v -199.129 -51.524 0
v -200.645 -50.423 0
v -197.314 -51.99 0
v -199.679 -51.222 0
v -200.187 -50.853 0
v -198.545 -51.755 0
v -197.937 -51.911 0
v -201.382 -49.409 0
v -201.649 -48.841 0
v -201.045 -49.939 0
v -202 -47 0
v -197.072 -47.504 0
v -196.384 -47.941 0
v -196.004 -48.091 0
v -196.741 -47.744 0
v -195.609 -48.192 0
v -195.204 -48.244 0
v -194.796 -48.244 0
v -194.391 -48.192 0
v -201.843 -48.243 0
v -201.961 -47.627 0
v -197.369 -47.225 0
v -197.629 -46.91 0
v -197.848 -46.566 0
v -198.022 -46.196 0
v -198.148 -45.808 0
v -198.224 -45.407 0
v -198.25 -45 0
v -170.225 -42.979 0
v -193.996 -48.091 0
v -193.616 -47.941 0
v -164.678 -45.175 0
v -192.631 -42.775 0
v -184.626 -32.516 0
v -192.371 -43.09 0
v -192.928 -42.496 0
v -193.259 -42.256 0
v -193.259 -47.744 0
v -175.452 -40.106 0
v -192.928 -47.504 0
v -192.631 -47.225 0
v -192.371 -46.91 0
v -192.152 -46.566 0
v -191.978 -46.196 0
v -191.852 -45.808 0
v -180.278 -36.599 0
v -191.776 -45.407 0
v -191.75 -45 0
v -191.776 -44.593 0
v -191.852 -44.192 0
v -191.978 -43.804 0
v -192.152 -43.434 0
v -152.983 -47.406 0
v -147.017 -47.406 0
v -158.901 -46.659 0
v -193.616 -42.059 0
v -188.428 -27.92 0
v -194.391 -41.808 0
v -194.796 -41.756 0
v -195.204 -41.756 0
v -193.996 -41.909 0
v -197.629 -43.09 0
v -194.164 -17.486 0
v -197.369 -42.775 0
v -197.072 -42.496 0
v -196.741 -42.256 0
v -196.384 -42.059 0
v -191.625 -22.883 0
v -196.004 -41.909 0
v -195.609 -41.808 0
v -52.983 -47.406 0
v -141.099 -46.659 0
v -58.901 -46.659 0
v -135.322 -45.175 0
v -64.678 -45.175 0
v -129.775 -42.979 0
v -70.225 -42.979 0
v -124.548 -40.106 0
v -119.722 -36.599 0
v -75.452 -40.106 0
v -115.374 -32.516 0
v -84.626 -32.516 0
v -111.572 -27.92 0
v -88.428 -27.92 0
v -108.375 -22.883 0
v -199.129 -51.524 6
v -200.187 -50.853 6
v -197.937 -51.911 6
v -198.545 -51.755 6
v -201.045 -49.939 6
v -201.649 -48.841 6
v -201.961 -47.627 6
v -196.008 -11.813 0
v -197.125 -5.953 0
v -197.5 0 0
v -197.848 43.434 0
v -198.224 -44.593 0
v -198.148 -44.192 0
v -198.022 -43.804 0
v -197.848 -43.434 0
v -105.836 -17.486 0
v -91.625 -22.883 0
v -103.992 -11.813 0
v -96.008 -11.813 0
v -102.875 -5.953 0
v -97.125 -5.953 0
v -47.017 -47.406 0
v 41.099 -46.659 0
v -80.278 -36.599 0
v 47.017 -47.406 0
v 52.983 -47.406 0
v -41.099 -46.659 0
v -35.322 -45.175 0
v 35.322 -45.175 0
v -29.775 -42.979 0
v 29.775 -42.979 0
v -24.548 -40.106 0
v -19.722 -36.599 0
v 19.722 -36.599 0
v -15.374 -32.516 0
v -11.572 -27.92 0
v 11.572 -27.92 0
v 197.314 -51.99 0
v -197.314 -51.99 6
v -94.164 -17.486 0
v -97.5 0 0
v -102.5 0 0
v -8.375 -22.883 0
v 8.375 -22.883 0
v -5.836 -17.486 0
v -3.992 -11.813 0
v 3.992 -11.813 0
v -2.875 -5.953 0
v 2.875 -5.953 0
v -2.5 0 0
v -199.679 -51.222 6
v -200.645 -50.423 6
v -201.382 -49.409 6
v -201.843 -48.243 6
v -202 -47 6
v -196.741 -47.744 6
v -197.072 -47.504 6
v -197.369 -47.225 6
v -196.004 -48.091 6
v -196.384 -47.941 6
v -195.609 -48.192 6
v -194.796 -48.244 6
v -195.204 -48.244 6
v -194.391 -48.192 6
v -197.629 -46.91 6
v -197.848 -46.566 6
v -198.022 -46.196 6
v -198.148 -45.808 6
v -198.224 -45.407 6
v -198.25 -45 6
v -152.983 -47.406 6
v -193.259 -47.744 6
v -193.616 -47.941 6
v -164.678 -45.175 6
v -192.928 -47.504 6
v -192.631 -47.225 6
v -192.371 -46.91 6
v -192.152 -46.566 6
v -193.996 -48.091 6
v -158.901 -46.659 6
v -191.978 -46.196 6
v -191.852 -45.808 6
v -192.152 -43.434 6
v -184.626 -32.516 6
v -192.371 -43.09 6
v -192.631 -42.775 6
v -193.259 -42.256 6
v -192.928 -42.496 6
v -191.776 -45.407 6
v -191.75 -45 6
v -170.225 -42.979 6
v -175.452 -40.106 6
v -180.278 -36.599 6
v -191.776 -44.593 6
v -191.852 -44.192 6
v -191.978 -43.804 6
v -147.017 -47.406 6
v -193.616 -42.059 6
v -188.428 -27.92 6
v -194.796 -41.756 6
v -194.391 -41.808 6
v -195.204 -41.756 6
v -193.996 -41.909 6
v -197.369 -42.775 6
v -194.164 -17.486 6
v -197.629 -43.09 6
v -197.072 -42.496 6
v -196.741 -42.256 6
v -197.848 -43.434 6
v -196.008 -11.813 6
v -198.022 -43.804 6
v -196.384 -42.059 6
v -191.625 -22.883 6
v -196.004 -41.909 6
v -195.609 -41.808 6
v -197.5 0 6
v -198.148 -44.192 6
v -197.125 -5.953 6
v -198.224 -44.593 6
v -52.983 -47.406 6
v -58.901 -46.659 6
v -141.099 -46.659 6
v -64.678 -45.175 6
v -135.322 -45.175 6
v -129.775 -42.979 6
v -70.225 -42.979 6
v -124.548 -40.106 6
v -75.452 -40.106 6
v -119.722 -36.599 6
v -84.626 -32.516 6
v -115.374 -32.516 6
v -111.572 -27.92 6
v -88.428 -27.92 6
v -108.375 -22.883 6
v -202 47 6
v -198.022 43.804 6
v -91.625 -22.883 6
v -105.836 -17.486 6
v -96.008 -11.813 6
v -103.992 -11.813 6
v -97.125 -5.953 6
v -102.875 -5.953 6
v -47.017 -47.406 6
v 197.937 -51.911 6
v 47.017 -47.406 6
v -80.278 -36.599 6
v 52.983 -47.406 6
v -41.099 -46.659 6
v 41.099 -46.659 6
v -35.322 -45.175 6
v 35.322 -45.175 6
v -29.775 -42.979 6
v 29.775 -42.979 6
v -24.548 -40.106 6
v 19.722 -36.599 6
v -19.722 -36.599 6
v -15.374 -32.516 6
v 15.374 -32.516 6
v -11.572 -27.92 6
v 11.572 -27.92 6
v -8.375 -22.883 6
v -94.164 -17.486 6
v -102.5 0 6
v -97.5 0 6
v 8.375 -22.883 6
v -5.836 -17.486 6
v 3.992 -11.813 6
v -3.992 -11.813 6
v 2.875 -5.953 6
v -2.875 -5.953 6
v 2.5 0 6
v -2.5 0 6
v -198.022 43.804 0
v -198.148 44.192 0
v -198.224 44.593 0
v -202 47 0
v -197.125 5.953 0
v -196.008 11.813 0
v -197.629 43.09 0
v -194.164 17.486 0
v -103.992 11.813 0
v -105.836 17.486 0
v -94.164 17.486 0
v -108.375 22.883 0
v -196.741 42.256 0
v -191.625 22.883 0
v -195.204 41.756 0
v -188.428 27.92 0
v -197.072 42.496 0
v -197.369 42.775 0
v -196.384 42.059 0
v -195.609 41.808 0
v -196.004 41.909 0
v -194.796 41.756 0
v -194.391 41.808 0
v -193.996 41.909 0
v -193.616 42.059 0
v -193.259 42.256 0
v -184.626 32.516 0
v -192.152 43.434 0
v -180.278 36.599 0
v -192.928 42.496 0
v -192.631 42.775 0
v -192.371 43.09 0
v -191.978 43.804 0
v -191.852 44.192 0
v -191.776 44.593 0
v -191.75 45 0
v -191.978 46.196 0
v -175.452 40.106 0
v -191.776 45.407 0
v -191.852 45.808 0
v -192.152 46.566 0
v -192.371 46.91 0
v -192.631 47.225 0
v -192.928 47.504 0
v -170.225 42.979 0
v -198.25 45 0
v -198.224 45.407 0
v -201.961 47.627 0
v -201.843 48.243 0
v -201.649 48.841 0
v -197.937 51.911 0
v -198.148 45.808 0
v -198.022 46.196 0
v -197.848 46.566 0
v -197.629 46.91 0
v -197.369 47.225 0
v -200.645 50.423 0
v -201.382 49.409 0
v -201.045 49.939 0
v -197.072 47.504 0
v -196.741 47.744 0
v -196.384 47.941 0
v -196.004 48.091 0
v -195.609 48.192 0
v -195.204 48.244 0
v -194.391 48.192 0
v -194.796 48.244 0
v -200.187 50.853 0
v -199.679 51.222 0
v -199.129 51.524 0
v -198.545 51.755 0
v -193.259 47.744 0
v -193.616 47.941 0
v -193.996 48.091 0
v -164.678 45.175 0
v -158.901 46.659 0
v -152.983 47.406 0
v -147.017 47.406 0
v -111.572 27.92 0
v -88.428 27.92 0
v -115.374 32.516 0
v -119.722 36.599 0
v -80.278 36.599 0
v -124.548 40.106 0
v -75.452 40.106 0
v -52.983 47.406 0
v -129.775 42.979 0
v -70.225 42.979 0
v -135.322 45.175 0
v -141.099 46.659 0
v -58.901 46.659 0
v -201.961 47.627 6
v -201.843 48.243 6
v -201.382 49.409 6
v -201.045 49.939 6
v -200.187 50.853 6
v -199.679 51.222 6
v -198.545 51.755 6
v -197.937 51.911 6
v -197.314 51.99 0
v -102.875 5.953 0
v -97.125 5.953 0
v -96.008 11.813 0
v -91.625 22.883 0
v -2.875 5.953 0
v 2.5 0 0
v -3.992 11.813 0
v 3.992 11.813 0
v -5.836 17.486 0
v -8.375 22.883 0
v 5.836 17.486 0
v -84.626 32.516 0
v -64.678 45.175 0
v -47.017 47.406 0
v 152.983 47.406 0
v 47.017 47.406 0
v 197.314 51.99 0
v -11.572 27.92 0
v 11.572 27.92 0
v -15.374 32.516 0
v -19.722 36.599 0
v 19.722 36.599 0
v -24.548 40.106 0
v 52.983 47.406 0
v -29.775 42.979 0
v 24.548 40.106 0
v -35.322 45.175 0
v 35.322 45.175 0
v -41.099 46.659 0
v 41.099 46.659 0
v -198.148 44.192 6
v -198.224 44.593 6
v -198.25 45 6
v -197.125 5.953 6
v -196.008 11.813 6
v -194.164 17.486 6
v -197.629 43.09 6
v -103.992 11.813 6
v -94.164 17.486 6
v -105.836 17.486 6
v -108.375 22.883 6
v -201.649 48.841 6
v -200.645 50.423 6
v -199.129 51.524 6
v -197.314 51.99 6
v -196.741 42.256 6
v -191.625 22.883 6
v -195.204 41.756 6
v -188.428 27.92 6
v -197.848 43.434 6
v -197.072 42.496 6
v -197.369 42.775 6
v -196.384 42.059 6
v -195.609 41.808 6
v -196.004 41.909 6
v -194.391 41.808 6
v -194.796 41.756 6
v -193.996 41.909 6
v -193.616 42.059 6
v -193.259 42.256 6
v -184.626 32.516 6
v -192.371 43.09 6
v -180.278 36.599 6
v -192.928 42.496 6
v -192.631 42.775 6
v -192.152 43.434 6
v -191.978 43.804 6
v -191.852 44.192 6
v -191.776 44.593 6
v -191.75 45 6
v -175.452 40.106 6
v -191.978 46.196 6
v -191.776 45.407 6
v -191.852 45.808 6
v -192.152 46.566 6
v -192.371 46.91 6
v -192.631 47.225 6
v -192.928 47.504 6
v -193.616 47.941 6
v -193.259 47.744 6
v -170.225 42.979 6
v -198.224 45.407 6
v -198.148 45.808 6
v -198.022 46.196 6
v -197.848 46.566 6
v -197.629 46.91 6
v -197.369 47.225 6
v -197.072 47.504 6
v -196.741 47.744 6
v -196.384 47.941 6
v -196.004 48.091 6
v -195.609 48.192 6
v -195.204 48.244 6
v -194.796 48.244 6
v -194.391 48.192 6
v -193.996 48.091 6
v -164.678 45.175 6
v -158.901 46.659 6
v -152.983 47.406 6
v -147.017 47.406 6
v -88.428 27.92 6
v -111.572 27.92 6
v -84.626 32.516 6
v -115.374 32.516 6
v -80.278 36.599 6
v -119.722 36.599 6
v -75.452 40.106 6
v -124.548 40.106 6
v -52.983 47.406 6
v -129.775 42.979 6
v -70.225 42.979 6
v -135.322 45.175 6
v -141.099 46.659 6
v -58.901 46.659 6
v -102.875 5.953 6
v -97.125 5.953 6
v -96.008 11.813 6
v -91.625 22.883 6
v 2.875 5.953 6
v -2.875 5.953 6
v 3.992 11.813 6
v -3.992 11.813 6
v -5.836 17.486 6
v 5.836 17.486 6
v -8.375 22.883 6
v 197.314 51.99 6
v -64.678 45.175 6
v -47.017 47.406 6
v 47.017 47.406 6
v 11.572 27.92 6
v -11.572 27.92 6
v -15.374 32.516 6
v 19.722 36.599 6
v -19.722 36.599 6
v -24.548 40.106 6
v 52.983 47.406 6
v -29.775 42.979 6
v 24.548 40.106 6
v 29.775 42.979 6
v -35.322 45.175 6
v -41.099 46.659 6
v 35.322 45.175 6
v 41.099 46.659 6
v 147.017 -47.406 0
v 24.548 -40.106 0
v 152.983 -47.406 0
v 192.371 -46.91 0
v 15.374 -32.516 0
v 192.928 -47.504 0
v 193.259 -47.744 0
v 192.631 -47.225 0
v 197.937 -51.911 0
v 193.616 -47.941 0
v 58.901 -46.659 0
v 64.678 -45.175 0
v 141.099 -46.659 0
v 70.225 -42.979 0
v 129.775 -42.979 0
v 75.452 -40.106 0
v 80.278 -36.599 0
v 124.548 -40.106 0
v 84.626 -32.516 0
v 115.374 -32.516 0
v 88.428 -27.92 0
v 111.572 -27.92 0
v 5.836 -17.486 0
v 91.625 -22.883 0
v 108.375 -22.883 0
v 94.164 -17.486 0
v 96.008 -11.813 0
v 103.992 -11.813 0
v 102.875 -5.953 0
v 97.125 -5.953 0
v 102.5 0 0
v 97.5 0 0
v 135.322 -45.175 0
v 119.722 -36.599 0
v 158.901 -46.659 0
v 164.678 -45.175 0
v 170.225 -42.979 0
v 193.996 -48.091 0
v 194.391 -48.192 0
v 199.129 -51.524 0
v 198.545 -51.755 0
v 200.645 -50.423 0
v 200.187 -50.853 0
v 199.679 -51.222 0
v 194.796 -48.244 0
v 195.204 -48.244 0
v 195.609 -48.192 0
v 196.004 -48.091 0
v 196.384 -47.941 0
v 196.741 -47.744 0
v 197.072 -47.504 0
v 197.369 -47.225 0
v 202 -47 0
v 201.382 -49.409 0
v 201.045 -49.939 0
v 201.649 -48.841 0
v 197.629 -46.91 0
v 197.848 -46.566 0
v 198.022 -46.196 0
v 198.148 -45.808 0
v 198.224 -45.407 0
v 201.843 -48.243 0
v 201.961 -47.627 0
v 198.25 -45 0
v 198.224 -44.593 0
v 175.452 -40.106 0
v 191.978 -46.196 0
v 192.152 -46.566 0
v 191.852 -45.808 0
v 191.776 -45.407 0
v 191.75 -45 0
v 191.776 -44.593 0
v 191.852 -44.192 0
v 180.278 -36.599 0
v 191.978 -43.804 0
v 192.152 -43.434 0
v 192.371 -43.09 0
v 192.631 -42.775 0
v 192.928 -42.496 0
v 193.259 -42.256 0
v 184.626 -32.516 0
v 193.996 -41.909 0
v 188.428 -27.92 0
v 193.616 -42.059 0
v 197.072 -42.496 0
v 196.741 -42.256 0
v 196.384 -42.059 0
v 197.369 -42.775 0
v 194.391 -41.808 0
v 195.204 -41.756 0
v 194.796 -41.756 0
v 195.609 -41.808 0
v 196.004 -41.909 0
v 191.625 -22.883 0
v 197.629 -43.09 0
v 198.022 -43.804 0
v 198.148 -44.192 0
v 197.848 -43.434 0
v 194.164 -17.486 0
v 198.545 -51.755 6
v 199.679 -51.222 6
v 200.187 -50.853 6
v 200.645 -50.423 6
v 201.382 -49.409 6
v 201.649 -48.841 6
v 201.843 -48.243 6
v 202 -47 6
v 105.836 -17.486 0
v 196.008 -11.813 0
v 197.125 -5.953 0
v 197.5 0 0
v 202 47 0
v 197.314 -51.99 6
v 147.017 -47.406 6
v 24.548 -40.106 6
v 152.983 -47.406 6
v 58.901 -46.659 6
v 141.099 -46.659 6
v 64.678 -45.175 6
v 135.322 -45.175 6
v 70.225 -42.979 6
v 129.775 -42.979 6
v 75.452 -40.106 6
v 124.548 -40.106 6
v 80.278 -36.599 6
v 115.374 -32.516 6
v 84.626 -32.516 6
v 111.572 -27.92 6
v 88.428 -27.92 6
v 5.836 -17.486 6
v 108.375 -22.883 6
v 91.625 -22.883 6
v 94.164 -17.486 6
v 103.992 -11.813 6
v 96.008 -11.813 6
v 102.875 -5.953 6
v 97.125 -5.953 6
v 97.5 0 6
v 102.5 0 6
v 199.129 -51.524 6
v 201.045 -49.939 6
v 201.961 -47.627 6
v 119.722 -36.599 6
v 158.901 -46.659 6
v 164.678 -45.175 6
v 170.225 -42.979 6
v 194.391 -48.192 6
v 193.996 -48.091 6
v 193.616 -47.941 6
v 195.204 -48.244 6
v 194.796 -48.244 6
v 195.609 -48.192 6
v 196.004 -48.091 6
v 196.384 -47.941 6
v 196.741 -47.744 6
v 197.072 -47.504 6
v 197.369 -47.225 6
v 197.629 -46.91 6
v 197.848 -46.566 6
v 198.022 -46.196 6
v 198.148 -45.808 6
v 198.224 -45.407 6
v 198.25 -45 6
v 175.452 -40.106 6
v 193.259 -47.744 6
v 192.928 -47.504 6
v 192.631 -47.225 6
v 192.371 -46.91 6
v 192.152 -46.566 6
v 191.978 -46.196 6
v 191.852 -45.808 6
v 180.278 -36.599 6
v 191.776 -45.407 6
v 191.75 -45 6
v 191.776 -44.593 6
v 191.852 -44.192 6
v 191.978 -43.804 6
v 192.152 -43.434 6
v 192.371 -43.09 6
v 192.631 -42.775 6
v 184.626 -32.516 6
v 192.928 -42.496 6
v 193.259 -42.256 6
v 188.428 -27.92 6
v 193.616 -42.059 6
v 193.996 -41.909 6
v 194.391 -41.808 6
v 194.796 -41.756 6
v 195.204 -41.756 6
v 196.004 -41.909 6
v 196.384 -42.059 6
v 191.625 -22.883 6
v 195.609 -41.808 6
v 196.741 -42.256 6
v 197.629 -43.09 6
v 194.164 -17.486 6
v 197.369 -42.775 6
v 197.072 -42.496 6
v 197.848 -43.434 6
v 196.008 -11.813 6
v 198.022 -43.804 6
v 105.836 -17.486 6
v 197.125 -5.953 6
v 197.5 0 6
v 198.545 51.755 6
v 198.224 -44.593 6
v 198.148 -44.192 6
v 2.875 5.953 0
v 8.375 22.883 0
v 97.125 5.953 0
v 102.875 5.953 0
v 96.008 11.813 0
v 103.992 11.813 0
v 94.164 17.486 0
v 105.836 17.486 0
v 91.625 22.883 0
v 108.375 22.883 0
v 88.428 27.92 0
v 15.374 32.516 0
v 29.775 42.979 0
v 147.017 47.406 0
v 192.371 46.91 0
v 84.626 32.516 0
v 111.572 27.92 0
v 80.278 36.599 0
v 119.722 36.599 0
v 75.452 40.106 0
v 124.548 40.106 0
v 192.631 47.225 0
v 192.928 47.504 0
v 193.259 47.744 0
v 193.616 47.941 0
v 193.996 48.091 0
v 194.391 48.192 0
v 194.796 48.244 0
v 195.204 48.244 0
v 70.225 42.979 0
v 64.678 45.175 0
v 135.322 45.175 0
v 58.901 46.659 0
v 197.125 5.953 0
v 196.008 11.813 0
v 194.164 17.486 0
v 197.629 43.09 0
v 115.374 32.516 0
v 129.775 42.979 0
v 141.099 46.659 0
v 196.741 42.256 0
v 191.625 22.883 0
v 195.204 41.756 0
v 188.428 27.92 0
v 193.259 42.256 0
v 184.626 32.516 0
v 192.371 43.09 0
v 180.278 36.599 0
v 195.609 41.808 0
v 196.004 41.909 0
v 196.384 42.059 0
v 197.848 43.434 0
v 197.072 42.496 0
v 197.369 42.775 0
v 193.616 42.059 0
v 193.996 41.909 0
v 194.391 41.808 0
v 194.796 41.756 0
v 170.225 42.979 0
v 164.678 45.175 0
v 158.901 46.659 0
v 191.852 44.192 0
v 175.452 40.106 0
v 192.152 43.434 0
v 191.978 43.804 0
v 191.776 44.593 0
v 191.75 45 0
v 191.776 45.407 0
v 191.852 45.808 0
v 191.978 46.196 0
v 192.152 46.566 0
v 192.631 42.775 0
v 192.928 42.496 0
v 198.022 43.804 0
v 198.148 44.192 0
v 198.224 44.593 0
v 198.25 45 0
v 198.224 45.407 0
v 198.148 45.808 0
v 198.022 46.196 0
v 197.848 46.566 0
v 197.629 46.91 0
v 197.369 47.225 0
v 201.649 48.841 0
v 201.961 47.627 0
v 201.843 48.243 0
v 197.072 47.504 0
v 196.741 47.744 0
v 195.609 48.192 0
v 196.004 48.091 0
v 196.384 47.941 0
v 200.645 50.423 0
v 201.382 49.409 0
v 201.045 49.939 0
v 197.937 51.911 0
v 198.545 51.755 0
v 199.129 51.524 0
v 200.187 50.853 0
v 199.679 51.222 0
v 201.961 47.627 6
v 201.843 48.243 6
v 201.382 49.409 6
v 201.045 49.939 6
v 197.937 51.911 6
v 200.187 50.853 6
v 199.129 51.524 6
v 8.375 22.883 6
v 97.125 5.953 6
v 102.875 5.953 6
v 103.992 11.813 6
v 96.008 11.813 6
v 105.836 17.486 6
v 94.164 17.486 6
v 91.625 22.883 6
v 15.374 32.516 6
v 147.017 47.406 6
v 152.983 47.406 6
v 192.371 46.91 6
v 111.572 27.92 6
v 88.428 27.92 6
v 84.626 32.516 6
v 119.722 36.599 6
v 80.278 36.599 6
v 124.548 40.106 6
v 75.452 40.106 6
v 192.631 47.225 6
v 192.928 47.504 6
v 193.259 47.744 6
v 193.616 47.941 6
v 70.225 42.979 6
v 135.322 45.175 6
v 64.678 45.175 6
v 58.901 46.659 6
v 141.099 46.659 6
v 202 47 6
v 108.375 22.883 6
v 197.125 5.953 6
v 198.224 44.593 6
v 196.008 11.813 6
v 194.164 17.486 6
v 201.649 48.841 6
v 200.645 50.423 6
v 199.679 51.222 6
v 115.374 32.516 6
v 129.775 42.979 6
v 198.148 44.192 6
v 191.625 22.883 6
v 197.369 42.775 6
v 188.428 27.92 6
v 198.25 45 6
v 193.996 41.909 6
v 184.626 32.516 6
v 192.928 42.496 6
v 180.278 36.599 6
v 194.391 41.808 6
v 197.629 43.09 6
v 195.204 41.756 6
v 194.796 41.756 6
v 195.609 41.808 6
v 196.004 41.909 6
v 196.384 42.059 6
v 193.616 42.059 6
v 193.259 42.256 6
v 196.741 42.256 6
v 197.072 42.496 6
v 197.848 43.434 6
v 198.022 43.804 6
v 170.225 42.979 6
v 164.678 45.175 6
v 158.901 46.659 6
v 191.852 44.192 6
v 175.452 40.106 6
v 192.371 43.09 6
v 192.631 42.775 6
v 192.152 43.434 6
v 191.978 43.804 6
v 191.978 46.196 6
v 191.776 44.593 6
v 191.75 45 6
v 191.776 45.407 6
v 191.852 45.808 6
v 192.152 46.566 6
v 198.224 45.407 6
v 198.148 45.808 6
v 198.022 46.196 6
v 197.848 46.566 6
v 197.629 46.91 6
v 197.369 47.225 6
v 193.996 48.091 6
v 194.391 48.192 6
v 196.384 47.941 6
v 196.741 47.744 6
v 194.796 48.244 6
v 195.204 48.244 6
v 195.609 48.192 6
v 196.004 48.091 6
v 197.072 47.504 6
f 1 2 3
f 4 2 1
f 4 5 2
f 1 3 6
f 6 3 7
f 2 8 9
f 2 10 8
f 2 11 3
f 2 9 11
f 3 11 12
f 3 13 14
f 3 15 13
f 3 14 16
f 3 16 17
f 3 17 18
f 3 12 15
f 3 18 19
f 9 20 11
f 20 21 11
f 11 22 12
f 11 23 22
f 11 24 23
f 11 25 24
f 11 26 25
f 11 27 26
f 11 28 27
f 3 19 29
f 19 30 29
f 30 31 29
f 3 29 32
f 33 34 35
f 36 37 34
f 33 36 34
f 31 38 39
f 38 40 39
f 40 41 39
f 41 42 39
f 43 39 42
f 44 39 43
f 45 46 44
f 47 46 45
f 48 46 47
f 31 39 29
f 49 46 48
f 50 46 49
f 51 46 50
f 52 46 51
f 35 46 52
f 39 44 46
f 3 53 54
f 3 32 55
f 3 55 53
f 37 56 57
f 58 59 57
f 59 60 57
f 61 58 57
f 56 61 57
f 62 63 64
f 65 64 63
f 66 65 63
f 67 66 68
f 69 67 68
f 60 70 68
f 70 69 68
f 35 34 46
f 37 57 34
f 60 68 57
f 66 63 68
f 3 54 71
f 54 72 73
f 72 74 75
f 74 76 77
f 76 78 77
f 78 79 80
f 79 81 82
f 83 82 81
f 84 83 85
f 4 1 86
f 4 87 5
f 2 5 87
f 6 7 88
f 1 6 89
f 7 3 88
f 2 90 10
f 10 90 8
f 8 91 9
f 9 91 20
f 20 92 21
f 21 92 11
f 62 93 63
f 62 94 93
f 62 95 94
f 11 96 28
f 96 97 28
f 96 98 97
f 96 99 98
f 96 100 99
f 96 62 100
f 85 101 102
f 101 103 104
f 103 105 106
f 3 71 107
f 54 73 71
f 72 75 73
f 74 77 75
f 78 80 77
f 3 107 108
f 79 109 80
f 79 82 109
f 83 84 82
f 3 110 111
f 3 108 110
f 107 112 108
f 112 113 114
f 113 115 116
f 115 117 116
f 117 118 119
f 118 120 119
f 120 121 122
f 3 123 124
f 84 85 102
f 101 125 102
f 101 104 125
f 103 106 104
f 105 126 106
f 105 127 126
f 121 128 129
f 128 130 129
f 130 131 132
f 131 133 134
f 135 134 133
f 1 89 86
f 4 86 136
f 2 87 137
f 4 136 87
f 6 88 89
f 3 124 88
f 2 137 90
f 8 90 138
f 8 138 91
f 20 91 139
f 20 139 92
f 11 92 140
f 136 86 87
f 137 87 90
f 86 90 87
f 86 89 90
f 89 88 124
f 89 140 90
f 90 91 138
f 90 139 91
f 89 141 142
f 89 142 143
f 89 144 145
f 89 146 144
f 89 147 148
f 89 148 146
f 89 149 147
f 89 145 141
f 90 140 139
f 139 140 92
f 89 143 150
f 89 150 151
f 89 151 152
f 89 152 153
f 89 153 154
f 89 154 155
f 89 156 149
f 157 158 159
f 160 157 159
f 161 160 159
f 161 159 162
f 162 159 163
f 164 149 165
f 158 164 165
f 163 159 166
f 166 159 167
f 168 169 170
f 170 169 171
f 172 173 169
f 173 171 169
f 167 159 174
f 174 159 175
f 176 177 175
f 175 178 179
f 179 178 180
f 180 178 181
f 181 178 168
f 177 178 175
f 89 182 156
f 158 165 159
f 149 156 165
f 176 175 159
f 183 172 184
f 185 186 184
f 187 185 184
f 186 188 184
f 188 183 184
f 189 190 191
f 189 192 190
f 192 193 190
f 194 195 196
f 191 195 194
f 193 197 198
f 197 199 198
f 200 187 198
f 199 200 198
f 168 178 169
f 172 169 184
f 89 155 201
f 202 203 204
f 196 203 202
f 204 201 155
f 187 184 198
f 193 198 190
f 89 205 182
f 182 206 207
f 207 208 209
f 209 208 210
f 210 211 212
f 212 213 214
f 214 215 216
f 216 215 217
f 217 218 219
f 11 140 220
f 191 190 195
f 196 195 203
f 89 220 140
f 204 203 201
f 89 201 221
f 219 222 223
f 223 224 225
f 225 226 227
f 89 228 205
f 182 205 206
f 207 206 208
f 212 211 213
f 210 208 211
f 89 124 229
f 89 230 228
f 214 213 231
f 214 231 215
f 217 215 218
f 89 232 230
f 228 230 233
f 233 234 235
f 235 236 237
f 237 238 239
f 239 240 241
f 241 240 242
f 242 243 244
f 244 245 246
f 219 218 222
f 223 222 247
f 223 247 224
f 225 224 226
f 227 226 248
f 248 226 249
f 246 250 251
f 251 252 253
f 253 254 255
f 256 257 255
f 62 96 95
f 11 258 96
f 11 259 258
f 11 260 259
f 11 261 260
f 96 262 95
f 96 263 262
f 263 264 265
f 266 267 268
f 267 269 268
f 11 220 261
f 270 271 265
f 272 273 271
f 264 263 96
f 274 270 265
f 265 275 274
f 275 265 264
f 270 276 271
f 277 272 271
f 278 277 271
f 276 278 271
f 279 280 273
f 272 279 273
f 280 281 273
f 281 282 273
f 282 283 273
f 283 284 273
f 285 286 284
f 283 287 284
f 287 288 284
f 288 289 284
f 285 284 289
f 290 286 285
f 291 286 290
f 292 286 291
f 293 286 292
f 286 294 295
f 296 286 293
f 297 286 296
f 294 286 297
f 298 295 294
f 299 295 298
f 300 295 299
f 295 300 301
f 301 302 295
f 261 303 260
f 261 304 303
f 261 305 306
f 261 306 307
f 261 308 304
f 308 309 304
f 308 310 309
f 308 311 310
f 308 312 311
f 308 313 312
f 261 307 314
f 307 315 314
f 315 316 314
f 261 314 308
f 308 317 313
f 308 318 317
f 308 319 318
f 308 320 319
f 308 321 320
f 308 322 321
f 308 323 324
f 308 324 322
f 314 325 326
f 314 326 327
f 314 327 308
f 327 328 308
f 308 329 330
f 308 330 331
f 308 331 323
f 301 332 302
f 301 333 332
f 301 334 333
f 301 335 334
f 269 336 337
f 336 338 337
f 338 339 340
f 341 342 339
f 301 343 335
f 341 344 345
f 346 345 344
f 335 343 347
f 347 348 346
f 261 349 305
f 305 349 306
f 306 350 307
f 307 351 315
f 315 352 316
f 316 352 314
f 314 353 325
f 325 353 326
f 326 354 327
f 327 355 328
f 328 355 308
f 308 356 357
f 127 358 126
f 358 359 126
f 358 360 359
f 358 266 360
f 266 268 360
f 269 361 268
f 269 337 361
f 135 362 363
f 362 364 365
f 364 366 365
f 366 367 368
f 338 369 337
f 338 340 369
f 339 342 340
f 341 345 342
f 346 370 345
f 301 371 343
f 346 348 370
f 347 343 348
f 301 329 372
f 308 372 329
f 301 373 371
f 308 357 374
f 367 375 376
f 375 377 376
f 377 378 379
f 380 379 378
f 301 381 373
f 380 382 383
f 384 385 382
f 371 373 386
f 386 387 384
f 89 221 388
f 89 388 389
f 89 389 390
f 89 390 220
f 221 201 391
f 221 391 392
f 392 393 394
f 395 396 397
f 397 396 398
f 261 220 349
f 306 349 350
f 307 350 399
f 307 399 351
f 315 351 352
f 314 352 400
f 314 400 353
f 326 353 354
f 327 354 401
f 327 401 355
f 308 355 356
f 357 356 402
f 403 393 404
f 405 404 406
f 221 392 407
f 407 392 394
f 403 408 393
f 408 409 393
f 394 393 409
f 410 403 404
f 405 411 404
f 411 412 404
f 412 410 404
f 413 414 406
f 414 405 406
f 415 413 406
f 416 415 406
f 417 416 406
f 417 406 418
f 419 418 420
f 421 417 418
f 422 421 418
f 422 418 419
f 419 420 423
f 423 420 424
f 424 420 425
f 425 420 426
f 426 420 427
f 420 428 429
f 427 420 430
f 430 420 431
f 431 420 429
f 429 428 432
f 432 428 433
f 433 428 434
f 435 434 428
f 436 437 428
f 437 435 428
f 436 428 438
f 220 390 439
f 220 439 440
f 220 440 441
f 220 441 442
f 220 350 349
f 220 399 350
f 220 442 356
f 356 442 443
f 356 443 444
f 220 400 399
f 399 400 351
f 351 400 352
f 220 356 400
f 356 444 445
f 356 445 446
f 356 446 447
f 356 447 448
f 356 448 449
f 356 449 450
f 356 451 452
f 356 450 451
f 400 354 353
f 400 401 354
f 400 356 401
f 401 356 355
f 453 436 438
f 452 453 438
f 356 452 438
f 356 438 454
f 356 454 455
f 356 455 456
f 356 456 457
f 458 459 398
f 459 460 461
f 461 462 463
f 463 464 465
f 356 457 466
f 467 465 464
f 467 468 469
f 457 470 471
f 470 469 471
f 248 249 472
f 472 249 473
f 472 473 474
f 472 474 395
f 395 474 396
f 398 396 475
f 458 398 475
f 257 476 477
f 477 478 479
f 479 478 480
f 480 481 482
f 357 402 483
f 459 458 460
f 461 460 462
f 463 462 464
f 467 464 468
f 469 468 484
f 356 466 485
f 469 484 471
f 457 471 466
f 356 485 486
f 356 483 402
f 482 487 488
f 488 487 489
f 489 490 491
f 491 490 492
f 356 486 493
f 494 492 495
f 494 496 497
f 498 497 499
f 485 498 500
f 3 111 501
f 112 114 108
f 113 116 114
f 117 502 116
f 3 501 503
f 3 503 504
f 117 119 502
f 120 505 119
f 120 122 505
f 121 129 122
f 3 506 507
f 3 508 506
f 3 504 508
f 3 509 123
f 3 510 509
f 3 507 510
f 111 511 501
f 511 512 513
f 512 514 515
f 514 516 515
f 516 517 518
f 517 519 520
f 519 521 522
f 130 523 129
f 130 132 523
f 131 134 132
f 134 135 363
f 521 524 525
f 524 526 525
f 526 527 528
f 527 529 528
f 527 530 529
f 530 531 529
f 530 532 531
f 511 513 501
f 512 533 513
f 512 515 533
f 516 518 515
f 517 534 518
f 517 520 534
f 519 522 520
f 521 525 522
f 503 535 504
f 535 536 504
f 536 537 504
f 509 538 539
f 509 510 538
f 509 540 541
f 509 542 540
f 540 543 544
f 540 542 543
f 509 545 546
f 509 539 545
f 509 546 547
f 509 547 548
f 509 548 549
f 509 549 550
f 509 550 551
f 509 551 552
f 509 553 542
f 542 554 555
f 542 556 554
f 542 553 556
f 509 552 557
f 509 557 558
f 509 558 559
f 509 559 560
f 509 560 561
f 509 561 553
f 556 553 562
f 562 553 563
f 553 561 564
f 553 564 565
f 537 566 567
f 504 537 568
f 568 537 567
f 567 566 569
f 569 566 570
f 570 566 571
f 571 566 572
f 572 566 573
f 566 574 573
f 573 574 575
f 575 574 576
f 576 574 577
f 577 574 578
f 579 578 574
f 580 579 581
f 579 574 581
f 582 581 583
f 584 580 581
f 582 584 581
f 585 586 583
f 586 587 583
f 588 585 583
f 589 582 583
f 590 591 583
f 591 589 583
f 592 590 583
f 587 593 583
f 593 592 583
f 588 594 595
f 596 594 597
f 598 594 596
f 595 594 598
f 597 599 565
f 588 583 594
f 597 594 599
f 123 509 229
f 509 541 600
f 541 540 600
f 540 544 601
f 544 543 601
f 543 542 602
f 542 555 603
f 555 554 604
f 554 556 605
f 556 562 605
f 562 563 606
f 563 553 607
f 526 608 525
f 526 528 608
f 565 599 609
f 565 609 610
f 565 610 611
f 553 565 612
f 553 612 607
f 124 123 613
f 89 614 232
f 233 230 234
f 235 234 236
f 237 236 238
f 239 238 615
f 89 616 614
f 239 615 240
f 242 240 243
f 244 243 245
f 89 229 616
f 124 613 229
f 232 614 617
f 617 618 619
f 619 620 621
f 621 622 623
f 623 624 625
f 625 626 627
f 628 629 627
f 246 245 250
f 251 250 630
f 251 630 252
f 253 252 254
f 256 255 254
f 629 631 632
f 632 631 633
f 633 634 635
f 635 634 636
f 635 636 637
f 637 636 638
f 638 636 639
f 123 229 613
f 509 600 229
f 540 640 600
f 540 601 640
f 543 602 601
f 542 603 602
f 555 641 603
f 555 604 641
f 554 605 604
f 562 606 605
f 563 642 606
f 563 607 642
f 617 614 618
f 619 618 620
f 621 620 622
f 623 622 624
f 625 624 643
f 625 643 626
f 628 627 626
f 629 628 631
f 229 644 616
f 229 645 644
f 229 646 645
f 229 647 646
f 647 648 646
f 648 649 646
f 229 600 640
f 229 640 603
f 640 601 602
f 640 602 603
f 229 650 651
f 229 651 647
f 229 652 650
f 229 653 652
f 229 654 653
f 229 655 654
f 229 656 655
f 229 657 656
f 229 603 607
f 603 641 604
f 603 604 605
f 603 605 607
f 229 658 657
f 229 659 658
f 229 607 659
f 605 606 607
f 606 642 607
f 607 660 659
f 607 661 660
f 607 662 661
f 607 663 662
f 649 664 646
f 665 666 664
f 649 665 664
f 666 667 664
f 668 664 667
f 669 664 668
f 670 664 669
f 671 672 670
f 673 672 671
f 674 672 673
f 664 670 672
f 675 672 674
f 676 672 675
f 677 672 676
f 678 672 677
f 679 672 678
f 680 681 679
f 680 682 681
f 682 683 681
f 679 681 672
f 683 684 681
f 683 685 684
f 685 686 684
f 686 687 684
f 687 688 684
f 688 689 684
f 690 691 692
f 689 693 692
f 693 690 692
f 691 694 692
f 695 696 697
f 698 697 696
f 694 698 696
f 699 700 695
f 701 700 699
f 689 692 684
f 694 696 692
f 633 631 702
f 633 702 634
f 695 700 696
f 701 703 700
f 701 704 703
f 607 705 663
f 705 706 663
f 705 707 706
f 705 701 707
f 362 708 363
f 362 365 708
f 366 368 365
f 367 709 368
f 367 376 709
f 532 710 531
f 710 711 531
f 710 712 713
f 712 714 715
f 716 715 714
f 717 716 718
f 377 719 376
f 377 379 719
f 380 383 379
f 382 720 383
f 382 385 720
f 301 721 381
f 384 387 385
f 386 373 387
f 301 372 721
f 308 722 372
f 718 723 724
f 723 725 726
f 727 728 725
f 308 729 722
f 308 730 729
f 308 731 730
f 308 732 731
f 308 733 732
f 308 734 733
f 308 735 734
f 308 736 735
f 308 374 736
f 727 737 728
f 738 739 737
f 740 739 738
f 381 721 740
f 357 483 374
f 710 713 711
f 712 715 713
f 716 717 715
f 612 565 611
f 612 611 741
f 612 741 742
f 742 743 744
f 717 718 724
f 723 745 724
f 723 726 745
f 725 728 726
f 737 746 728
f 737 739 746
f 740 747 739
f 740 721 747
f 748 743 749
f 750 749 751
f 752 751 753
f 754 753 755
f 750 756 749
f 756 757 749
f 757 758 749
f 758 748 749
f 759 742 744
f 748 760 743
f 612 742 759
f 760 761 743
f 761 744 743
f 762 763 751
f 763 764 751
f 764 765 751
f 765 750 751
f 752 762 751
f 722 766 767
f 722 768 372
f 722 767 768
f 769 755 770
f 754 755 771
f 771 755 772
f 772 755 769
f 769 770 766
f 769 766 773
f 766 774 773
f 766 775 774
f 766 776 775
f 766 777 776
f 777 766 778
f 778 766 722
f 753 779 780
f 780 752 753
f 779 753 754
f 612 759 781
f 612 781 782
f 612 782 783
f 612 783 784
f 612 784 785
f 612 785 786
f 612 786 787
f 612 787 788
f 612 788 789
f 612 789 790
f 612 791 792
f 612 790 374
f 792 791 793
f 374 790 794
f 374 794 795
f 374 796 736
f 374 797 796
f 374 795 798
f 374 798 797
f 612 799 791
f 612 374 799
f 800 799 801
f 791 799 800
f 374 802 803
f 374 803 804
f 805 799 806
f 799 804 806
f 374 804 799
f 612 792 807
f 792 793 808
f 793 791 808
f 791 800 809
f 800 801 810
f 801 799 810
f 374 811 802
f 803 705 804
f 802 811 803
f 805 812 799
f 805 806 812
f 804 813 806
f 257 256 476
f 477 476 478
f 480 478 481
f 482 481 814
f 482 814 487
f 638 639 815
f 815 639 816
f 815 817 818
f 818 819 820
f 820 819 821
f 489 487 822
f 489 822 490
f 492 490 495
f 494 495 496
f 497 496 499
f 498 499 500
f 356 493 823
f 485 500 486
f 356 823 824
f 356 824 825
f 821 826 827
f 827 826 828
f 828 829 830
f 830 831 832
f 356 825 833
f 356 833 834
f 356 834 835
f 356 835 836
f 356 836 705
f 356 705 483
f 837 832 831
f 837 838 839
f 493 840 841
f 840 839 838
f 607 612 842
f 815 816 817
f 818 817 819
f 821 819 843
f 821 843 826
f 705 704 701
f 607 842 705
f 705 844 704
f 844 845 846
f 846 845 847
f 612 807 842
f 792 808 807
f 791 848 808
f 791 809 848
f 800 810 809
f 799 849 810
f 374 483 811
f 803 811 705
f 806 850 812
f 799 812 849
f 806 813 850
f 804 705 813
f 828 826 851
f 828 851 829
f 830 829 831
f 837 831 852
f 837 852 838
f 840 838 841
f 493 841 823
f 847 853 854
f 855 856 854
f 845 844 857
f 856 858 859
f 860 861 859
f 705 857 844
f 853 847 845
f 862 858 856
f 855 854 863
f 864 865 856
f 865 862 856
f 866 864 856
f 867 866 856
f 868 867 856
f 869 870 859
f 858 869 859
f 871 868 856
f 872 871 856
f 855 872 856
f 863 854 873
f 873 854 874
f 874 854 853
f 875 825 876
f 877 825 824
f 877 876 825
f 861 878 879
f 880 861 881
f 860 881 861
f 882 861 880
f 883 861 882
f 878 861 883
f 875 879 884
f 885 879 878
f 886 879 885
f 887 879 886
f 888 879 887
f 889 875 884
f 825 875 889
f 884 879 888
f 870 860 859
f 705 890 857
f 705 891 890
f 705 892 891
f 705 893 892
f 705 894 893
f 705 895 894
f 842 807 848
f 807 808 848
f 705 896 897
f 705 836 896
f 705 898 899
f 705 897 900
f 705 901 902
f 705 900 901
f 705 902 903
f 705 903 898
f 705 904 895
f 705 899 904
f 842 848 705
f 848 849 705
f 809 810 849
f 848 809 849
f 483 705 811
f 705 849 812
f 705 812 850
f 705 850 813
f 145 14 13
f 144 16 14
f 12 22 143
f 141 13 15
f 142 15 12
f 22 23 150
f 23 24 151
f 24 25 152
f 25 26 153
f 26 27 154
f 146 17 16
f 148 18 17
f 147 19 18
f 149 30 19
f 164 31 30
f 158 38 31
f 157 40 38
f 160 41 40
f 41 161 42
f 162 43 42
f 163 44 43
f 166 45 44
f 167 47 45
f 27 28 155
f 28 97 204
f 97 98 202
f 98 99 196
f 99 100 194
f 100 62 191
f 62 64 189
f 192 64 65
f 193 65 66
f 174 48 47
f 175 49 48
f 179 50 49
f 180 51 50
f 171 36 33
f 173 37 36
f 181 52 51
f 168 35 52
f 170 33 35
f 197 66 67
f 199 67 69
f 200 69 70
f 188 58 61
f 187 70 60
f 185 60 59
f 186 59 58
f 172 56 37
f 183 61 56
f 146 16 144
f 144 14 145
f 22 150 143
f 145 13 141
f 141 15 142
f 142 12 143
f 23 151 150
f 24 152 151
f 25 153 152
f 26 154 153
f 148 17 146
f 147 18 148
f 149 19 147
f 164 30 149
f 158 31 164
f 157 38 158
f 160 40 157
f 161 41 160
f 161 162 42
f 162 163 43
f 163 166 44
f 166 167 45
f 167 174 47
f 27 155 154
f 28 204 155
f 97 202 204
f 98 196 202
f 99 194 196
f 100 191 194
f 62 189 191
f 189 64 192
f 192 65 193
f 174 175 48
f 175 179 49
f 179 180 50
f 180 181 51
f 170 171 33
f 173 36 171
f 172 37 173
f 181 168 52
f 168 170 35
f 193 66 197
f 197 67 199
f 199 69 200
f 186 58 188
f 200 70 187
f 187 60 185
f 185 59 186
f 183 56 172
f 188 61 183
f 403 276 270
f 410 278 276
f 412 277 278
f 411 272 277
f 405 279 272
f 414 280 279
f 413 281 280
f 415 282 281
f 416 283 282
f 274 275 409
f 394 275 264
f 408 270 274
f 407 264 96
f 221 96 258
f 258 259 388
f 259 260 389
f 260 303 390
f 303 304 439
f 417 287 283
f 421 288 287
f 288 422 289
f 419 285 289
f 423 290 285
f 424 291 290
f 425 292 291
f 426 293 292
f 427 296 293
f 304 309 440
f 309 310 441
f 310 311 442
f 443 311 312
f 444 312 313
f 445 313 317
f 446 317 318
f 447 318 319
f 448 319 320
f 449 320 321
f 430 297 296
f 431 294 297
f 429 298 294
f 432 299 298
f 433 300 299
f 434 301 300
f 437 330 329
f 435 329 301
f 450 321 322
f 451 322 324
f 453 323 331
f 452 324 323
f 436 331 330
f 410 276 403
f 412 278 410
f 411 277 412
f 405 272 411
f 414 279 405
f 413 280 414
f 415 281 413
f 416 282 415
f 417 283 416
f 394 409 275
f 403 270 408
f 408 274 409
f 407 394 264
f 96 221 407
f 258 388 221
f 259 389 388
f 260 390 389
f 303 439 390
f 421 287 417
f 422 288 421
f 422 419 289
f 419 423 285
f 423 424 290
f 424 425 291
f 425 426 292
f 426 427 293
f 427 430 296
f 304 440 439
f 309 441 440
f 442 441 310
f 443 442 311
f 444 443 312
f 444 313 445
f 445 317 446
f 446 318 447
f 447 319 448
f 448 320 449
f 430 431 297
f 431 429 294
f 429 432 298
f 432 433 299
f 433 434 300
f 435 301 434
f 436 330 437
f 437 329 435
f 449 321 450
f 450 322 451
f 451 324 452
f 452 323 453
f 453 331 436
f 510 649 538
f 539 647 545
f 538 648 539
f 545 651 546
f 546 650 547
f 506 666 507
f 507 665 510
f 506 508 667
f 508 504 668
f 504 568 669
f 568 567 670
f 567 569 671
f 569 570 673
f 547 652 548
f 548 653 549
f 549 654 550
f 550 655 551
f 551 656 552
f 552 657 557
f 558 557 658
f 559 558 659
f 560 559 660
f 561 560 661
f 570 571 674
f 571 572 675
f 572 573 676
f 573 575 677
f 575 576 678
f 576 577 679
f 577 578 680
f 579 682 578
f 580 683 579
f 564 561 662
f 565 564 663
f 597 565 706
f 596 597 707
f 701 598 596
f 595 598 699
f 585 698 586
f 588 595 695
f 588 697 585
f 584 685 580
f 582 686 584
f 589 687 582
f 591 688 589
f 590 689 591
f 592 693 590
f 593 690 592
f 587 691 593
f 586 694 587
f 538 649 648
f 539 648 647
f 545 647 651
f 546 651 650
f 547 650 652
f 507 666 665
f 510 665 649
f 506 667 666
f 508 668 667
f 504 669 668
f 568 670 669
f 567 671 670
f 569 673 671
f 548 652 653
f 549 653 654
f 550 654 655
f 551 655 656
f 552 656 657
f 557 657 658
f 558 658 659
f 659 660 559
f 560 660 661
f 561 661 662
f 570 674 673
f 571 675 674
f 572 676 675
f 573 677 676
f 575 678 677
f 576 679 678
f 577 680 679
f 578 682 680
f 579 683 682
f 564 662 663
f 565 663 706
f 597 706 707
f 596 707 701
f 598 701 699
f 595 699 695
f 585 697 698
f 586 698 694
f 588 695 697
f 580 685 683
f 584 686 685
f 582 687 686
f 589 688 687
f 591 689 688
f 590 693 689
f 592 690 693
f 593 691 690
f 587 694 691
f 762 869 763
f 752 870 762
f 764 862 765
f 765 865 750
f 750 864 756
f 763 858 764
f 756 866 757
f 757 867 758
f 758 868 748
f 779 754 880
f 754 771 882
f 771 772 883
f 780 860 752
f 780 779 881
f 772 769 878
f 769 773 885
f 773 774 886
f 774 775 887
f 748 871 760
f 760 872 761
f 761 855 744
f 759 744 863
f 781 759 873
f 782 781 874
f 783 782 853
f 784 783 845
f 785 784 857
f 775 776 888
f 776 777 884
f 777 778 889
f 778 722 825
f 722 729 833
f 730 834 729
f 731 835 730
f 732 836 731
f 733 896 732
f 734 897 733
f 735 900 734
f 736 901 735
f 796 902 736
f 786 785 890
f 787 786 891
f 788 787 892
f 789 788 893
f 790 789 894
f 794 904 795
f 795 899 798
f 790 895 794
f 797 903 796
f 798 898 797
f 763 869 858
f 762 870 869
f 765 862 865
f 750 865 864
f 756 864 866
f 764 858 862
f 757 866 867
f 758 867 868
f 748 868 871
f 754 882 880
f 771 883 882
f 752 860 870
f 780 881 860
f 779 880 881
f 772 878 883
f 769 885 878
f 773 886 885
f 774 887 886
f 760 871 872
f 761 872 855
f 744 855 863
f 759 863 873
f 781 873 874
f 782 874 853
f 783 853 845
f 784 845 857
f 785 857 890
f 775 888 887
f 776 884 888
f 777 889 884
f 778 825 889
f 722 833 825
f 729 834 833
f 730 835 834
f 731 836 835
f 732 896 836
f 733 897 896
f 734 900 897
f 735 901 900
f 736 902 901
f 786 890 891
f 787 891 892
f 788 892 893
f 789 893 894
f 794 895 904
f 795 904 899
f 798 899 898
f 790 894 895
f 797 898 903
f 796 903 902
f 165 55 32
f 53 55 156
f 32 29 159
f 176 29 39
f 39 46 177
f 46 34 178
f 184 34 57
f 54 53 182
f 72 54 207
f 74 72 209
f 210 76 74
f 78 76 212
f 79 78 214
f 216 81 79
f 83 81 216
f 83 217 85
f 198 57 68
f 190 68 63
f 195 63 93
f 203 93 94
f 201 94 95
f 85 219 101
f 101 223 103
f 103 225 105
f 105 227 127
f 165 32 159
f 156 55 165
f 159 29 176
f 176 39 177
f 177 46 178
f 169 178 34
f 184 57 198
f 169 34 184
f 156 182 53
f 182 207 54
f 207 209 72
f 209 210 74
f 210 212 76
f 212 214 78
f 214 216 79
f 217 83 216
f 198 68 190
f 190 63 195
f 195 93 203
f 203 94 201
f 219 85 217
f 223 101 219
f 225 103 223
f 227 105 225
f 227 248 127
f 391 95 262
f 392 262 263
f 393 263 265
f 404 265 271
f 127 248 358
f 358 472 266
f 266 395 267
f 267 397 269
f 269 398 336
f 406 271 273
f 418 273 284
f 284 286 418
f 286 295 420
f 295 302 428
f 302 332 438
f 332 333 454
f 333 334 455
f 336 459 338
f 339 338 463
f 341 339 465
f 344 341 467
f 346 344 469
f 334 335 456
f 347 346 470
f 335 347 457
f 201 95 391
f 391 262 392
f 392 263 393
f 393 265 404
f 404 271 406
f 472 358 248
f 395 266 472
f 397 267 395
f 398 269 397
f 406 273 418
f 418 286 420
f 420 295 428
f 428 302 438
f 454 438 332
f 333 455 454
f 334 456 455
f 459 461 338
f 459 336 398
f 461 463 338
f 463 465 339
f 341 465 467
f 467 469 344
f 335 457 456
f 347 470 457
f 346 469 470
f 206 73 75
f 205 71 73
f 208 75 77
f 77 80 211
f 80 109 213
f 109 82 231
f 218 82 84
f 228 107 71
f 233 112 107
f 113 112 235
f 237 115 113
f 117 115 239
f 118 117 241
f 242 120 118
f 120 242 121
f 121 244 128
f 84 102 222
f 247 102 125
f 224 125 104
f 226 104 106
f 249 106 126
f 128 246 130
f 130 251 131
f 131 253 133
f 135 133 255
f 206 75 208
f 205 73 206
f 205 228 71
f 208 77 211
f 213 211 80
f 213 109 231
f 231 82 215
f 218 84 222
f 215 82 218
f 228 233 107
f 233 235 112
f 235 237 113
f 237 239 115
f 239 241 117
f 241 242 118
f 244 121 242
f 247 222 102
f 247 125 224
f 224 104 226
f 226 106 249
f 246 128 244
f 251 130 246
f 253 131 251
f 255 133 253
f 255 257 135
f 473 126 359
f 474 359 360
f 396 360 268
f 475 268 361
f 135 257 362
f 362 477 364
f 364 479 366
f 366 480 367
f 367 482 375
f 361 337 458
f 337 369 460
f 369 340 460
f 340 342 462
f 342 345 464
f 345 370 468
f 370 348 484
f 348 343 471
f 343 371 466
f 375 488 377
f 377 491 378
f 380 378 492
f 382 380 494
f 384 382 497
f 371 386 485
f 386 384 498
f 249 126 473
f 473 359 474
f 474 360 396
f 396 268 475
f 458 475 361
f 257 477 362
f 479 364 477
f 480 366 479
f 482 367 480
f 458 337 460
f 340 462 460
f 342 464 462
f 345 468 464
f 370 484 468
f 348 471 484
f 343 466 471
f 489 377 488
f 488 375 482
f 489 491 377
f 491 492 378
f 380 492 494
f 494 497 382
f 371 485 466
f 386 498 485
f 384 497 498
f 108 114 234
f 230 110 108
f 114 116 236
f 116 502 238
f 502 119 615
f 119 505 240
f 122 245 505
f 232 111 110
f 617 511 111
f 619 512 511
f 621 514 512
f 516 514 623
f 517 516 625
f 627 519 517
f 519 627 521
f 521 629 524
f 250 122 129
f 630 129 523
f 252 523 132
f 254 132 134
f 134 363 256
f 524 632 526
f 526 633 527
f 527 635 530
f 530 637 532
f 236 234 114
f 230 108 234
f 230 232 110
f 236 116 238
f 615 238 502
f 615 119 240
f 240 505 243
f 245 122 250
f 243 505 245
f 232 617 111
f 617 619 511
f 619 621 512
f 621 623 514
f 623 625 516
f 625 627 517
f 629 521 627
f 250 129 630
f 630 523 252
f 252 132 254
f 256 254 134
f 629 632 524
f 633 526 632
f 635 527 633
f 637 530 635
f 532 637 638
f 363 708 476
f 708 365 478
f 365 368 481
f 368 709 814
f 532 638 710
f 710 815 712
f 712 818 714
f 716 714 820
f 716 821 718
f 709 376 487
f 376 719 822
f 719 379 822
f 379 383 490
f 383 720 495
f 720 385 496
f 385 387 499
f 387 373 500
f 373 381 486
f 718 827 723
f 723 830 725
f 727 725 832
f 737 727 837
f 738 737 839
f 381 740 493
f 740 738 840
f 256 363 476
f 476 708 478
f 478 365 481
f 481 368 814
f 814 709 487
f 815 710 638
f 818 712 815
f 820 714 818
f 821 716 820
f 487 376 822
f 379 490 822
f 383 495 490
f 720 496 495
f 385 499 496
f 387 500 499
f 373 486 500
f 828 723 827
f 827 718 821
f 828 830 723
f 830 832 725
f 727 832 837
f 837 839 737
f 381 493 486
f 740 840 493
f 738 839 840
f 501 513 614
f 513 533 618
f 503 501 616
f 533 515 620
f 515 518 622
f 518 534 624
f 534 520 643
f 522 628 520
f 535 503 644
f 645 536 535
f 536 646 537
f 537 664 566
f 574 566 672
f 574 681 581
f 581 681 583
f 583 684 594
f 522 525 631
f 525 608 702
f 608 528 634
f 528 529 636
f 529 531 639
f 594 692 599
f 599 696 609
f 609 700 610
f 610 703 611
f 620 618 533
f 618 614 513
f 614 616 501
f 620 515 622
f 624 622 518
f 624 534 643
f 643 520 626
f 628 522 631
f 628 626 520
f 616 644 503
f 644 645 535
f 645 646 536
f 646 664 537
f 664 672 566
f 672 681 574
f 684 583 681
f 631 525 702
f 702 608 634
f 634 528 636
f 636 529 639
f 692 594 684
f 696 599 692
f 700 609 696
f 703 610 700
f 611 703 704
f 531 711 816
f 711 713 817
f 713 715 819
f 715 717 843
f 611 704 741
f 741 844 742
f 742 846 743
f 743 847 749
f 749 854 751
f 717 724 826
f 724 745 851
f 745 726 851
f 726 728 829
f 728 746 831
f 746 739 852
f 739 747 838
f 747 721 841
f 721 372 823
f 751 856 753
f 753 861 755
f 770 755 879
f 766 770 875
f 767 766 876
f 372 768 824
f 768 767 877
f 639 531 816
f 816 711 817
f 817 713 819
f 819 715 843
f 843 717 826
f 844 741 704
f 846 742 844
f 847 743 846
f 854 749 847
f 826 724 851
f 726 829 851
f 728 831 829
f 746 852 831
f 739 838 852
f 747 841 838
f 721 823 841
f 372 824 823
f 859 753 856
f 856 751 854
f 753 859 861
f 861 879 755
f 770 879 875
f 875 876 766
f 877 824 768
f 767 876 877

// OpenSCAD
$fn = 50;

difference() {
	union() {
		hull() {
			translate(v = [-197.0, 47.0, 0]) {
				cylinder(h = 6, r = 5);
			}
			translate(v = [197.0, 47.0, 0]) {
				cylinder(h = 6, r = 5);
			}
			translate(v = [-197.0, -47.0, 0]) {
				cylinder(h = 6, r = 5);
			}
			translate(v = [197.0, -47.0, 0]) {
				cylinder(h = 6, r = 5);
			}
		}
	}
	union() {
		translate(v = [-195.0, -45.0, -100.0]) {
			cylinder(h = 200, r = 3.25);
		}
		translate(v = [-195.0, 45.0, -100.0]) {
			cylinder(h = 200, r = 3.25);
		}
		translate(v = [195.0, -45.0, -100.0]) {
			cylinder(h = 200, r = 3.25);
		}
		translate(v = [195.0, 45.0, -100.0]) {
			cylinder(h = 200, r = 3.25);
		}
		translate(v = [-195.0, -45.0, -100.0]) {
			cylinder(h = 200, r = 1.8);
		}
		translate(v = [-195.0, 45.0, -100.0]) {
			cylinder(h = 200, r = 1.8);
		}
		translate(v = [195.0, -45.0, -100.0]) {
			cylinder(h = 200, r = 1.8);
		}
		translate(v = [195.0, 45.0, -100.0]) {
			cylinder(h = 200, r = 1.8);
		}
		translate(v = [-150.0, 0, 0.0]) {
			cylinder(h = 6, r = 47.5);
		}
		translate(v = [-50.0, 0, 0.0]) {
			cylinder(h = 6, r = 47.5);
		}
		translate(v = [50.0, 0, 0.0]) {
			cylinder(h = 6, r = 47.5);
		}
		translate(v = [150.0, 0, 0.0]) {
			cylinder(h = 6, r = 47.5);
		}
	}
}
